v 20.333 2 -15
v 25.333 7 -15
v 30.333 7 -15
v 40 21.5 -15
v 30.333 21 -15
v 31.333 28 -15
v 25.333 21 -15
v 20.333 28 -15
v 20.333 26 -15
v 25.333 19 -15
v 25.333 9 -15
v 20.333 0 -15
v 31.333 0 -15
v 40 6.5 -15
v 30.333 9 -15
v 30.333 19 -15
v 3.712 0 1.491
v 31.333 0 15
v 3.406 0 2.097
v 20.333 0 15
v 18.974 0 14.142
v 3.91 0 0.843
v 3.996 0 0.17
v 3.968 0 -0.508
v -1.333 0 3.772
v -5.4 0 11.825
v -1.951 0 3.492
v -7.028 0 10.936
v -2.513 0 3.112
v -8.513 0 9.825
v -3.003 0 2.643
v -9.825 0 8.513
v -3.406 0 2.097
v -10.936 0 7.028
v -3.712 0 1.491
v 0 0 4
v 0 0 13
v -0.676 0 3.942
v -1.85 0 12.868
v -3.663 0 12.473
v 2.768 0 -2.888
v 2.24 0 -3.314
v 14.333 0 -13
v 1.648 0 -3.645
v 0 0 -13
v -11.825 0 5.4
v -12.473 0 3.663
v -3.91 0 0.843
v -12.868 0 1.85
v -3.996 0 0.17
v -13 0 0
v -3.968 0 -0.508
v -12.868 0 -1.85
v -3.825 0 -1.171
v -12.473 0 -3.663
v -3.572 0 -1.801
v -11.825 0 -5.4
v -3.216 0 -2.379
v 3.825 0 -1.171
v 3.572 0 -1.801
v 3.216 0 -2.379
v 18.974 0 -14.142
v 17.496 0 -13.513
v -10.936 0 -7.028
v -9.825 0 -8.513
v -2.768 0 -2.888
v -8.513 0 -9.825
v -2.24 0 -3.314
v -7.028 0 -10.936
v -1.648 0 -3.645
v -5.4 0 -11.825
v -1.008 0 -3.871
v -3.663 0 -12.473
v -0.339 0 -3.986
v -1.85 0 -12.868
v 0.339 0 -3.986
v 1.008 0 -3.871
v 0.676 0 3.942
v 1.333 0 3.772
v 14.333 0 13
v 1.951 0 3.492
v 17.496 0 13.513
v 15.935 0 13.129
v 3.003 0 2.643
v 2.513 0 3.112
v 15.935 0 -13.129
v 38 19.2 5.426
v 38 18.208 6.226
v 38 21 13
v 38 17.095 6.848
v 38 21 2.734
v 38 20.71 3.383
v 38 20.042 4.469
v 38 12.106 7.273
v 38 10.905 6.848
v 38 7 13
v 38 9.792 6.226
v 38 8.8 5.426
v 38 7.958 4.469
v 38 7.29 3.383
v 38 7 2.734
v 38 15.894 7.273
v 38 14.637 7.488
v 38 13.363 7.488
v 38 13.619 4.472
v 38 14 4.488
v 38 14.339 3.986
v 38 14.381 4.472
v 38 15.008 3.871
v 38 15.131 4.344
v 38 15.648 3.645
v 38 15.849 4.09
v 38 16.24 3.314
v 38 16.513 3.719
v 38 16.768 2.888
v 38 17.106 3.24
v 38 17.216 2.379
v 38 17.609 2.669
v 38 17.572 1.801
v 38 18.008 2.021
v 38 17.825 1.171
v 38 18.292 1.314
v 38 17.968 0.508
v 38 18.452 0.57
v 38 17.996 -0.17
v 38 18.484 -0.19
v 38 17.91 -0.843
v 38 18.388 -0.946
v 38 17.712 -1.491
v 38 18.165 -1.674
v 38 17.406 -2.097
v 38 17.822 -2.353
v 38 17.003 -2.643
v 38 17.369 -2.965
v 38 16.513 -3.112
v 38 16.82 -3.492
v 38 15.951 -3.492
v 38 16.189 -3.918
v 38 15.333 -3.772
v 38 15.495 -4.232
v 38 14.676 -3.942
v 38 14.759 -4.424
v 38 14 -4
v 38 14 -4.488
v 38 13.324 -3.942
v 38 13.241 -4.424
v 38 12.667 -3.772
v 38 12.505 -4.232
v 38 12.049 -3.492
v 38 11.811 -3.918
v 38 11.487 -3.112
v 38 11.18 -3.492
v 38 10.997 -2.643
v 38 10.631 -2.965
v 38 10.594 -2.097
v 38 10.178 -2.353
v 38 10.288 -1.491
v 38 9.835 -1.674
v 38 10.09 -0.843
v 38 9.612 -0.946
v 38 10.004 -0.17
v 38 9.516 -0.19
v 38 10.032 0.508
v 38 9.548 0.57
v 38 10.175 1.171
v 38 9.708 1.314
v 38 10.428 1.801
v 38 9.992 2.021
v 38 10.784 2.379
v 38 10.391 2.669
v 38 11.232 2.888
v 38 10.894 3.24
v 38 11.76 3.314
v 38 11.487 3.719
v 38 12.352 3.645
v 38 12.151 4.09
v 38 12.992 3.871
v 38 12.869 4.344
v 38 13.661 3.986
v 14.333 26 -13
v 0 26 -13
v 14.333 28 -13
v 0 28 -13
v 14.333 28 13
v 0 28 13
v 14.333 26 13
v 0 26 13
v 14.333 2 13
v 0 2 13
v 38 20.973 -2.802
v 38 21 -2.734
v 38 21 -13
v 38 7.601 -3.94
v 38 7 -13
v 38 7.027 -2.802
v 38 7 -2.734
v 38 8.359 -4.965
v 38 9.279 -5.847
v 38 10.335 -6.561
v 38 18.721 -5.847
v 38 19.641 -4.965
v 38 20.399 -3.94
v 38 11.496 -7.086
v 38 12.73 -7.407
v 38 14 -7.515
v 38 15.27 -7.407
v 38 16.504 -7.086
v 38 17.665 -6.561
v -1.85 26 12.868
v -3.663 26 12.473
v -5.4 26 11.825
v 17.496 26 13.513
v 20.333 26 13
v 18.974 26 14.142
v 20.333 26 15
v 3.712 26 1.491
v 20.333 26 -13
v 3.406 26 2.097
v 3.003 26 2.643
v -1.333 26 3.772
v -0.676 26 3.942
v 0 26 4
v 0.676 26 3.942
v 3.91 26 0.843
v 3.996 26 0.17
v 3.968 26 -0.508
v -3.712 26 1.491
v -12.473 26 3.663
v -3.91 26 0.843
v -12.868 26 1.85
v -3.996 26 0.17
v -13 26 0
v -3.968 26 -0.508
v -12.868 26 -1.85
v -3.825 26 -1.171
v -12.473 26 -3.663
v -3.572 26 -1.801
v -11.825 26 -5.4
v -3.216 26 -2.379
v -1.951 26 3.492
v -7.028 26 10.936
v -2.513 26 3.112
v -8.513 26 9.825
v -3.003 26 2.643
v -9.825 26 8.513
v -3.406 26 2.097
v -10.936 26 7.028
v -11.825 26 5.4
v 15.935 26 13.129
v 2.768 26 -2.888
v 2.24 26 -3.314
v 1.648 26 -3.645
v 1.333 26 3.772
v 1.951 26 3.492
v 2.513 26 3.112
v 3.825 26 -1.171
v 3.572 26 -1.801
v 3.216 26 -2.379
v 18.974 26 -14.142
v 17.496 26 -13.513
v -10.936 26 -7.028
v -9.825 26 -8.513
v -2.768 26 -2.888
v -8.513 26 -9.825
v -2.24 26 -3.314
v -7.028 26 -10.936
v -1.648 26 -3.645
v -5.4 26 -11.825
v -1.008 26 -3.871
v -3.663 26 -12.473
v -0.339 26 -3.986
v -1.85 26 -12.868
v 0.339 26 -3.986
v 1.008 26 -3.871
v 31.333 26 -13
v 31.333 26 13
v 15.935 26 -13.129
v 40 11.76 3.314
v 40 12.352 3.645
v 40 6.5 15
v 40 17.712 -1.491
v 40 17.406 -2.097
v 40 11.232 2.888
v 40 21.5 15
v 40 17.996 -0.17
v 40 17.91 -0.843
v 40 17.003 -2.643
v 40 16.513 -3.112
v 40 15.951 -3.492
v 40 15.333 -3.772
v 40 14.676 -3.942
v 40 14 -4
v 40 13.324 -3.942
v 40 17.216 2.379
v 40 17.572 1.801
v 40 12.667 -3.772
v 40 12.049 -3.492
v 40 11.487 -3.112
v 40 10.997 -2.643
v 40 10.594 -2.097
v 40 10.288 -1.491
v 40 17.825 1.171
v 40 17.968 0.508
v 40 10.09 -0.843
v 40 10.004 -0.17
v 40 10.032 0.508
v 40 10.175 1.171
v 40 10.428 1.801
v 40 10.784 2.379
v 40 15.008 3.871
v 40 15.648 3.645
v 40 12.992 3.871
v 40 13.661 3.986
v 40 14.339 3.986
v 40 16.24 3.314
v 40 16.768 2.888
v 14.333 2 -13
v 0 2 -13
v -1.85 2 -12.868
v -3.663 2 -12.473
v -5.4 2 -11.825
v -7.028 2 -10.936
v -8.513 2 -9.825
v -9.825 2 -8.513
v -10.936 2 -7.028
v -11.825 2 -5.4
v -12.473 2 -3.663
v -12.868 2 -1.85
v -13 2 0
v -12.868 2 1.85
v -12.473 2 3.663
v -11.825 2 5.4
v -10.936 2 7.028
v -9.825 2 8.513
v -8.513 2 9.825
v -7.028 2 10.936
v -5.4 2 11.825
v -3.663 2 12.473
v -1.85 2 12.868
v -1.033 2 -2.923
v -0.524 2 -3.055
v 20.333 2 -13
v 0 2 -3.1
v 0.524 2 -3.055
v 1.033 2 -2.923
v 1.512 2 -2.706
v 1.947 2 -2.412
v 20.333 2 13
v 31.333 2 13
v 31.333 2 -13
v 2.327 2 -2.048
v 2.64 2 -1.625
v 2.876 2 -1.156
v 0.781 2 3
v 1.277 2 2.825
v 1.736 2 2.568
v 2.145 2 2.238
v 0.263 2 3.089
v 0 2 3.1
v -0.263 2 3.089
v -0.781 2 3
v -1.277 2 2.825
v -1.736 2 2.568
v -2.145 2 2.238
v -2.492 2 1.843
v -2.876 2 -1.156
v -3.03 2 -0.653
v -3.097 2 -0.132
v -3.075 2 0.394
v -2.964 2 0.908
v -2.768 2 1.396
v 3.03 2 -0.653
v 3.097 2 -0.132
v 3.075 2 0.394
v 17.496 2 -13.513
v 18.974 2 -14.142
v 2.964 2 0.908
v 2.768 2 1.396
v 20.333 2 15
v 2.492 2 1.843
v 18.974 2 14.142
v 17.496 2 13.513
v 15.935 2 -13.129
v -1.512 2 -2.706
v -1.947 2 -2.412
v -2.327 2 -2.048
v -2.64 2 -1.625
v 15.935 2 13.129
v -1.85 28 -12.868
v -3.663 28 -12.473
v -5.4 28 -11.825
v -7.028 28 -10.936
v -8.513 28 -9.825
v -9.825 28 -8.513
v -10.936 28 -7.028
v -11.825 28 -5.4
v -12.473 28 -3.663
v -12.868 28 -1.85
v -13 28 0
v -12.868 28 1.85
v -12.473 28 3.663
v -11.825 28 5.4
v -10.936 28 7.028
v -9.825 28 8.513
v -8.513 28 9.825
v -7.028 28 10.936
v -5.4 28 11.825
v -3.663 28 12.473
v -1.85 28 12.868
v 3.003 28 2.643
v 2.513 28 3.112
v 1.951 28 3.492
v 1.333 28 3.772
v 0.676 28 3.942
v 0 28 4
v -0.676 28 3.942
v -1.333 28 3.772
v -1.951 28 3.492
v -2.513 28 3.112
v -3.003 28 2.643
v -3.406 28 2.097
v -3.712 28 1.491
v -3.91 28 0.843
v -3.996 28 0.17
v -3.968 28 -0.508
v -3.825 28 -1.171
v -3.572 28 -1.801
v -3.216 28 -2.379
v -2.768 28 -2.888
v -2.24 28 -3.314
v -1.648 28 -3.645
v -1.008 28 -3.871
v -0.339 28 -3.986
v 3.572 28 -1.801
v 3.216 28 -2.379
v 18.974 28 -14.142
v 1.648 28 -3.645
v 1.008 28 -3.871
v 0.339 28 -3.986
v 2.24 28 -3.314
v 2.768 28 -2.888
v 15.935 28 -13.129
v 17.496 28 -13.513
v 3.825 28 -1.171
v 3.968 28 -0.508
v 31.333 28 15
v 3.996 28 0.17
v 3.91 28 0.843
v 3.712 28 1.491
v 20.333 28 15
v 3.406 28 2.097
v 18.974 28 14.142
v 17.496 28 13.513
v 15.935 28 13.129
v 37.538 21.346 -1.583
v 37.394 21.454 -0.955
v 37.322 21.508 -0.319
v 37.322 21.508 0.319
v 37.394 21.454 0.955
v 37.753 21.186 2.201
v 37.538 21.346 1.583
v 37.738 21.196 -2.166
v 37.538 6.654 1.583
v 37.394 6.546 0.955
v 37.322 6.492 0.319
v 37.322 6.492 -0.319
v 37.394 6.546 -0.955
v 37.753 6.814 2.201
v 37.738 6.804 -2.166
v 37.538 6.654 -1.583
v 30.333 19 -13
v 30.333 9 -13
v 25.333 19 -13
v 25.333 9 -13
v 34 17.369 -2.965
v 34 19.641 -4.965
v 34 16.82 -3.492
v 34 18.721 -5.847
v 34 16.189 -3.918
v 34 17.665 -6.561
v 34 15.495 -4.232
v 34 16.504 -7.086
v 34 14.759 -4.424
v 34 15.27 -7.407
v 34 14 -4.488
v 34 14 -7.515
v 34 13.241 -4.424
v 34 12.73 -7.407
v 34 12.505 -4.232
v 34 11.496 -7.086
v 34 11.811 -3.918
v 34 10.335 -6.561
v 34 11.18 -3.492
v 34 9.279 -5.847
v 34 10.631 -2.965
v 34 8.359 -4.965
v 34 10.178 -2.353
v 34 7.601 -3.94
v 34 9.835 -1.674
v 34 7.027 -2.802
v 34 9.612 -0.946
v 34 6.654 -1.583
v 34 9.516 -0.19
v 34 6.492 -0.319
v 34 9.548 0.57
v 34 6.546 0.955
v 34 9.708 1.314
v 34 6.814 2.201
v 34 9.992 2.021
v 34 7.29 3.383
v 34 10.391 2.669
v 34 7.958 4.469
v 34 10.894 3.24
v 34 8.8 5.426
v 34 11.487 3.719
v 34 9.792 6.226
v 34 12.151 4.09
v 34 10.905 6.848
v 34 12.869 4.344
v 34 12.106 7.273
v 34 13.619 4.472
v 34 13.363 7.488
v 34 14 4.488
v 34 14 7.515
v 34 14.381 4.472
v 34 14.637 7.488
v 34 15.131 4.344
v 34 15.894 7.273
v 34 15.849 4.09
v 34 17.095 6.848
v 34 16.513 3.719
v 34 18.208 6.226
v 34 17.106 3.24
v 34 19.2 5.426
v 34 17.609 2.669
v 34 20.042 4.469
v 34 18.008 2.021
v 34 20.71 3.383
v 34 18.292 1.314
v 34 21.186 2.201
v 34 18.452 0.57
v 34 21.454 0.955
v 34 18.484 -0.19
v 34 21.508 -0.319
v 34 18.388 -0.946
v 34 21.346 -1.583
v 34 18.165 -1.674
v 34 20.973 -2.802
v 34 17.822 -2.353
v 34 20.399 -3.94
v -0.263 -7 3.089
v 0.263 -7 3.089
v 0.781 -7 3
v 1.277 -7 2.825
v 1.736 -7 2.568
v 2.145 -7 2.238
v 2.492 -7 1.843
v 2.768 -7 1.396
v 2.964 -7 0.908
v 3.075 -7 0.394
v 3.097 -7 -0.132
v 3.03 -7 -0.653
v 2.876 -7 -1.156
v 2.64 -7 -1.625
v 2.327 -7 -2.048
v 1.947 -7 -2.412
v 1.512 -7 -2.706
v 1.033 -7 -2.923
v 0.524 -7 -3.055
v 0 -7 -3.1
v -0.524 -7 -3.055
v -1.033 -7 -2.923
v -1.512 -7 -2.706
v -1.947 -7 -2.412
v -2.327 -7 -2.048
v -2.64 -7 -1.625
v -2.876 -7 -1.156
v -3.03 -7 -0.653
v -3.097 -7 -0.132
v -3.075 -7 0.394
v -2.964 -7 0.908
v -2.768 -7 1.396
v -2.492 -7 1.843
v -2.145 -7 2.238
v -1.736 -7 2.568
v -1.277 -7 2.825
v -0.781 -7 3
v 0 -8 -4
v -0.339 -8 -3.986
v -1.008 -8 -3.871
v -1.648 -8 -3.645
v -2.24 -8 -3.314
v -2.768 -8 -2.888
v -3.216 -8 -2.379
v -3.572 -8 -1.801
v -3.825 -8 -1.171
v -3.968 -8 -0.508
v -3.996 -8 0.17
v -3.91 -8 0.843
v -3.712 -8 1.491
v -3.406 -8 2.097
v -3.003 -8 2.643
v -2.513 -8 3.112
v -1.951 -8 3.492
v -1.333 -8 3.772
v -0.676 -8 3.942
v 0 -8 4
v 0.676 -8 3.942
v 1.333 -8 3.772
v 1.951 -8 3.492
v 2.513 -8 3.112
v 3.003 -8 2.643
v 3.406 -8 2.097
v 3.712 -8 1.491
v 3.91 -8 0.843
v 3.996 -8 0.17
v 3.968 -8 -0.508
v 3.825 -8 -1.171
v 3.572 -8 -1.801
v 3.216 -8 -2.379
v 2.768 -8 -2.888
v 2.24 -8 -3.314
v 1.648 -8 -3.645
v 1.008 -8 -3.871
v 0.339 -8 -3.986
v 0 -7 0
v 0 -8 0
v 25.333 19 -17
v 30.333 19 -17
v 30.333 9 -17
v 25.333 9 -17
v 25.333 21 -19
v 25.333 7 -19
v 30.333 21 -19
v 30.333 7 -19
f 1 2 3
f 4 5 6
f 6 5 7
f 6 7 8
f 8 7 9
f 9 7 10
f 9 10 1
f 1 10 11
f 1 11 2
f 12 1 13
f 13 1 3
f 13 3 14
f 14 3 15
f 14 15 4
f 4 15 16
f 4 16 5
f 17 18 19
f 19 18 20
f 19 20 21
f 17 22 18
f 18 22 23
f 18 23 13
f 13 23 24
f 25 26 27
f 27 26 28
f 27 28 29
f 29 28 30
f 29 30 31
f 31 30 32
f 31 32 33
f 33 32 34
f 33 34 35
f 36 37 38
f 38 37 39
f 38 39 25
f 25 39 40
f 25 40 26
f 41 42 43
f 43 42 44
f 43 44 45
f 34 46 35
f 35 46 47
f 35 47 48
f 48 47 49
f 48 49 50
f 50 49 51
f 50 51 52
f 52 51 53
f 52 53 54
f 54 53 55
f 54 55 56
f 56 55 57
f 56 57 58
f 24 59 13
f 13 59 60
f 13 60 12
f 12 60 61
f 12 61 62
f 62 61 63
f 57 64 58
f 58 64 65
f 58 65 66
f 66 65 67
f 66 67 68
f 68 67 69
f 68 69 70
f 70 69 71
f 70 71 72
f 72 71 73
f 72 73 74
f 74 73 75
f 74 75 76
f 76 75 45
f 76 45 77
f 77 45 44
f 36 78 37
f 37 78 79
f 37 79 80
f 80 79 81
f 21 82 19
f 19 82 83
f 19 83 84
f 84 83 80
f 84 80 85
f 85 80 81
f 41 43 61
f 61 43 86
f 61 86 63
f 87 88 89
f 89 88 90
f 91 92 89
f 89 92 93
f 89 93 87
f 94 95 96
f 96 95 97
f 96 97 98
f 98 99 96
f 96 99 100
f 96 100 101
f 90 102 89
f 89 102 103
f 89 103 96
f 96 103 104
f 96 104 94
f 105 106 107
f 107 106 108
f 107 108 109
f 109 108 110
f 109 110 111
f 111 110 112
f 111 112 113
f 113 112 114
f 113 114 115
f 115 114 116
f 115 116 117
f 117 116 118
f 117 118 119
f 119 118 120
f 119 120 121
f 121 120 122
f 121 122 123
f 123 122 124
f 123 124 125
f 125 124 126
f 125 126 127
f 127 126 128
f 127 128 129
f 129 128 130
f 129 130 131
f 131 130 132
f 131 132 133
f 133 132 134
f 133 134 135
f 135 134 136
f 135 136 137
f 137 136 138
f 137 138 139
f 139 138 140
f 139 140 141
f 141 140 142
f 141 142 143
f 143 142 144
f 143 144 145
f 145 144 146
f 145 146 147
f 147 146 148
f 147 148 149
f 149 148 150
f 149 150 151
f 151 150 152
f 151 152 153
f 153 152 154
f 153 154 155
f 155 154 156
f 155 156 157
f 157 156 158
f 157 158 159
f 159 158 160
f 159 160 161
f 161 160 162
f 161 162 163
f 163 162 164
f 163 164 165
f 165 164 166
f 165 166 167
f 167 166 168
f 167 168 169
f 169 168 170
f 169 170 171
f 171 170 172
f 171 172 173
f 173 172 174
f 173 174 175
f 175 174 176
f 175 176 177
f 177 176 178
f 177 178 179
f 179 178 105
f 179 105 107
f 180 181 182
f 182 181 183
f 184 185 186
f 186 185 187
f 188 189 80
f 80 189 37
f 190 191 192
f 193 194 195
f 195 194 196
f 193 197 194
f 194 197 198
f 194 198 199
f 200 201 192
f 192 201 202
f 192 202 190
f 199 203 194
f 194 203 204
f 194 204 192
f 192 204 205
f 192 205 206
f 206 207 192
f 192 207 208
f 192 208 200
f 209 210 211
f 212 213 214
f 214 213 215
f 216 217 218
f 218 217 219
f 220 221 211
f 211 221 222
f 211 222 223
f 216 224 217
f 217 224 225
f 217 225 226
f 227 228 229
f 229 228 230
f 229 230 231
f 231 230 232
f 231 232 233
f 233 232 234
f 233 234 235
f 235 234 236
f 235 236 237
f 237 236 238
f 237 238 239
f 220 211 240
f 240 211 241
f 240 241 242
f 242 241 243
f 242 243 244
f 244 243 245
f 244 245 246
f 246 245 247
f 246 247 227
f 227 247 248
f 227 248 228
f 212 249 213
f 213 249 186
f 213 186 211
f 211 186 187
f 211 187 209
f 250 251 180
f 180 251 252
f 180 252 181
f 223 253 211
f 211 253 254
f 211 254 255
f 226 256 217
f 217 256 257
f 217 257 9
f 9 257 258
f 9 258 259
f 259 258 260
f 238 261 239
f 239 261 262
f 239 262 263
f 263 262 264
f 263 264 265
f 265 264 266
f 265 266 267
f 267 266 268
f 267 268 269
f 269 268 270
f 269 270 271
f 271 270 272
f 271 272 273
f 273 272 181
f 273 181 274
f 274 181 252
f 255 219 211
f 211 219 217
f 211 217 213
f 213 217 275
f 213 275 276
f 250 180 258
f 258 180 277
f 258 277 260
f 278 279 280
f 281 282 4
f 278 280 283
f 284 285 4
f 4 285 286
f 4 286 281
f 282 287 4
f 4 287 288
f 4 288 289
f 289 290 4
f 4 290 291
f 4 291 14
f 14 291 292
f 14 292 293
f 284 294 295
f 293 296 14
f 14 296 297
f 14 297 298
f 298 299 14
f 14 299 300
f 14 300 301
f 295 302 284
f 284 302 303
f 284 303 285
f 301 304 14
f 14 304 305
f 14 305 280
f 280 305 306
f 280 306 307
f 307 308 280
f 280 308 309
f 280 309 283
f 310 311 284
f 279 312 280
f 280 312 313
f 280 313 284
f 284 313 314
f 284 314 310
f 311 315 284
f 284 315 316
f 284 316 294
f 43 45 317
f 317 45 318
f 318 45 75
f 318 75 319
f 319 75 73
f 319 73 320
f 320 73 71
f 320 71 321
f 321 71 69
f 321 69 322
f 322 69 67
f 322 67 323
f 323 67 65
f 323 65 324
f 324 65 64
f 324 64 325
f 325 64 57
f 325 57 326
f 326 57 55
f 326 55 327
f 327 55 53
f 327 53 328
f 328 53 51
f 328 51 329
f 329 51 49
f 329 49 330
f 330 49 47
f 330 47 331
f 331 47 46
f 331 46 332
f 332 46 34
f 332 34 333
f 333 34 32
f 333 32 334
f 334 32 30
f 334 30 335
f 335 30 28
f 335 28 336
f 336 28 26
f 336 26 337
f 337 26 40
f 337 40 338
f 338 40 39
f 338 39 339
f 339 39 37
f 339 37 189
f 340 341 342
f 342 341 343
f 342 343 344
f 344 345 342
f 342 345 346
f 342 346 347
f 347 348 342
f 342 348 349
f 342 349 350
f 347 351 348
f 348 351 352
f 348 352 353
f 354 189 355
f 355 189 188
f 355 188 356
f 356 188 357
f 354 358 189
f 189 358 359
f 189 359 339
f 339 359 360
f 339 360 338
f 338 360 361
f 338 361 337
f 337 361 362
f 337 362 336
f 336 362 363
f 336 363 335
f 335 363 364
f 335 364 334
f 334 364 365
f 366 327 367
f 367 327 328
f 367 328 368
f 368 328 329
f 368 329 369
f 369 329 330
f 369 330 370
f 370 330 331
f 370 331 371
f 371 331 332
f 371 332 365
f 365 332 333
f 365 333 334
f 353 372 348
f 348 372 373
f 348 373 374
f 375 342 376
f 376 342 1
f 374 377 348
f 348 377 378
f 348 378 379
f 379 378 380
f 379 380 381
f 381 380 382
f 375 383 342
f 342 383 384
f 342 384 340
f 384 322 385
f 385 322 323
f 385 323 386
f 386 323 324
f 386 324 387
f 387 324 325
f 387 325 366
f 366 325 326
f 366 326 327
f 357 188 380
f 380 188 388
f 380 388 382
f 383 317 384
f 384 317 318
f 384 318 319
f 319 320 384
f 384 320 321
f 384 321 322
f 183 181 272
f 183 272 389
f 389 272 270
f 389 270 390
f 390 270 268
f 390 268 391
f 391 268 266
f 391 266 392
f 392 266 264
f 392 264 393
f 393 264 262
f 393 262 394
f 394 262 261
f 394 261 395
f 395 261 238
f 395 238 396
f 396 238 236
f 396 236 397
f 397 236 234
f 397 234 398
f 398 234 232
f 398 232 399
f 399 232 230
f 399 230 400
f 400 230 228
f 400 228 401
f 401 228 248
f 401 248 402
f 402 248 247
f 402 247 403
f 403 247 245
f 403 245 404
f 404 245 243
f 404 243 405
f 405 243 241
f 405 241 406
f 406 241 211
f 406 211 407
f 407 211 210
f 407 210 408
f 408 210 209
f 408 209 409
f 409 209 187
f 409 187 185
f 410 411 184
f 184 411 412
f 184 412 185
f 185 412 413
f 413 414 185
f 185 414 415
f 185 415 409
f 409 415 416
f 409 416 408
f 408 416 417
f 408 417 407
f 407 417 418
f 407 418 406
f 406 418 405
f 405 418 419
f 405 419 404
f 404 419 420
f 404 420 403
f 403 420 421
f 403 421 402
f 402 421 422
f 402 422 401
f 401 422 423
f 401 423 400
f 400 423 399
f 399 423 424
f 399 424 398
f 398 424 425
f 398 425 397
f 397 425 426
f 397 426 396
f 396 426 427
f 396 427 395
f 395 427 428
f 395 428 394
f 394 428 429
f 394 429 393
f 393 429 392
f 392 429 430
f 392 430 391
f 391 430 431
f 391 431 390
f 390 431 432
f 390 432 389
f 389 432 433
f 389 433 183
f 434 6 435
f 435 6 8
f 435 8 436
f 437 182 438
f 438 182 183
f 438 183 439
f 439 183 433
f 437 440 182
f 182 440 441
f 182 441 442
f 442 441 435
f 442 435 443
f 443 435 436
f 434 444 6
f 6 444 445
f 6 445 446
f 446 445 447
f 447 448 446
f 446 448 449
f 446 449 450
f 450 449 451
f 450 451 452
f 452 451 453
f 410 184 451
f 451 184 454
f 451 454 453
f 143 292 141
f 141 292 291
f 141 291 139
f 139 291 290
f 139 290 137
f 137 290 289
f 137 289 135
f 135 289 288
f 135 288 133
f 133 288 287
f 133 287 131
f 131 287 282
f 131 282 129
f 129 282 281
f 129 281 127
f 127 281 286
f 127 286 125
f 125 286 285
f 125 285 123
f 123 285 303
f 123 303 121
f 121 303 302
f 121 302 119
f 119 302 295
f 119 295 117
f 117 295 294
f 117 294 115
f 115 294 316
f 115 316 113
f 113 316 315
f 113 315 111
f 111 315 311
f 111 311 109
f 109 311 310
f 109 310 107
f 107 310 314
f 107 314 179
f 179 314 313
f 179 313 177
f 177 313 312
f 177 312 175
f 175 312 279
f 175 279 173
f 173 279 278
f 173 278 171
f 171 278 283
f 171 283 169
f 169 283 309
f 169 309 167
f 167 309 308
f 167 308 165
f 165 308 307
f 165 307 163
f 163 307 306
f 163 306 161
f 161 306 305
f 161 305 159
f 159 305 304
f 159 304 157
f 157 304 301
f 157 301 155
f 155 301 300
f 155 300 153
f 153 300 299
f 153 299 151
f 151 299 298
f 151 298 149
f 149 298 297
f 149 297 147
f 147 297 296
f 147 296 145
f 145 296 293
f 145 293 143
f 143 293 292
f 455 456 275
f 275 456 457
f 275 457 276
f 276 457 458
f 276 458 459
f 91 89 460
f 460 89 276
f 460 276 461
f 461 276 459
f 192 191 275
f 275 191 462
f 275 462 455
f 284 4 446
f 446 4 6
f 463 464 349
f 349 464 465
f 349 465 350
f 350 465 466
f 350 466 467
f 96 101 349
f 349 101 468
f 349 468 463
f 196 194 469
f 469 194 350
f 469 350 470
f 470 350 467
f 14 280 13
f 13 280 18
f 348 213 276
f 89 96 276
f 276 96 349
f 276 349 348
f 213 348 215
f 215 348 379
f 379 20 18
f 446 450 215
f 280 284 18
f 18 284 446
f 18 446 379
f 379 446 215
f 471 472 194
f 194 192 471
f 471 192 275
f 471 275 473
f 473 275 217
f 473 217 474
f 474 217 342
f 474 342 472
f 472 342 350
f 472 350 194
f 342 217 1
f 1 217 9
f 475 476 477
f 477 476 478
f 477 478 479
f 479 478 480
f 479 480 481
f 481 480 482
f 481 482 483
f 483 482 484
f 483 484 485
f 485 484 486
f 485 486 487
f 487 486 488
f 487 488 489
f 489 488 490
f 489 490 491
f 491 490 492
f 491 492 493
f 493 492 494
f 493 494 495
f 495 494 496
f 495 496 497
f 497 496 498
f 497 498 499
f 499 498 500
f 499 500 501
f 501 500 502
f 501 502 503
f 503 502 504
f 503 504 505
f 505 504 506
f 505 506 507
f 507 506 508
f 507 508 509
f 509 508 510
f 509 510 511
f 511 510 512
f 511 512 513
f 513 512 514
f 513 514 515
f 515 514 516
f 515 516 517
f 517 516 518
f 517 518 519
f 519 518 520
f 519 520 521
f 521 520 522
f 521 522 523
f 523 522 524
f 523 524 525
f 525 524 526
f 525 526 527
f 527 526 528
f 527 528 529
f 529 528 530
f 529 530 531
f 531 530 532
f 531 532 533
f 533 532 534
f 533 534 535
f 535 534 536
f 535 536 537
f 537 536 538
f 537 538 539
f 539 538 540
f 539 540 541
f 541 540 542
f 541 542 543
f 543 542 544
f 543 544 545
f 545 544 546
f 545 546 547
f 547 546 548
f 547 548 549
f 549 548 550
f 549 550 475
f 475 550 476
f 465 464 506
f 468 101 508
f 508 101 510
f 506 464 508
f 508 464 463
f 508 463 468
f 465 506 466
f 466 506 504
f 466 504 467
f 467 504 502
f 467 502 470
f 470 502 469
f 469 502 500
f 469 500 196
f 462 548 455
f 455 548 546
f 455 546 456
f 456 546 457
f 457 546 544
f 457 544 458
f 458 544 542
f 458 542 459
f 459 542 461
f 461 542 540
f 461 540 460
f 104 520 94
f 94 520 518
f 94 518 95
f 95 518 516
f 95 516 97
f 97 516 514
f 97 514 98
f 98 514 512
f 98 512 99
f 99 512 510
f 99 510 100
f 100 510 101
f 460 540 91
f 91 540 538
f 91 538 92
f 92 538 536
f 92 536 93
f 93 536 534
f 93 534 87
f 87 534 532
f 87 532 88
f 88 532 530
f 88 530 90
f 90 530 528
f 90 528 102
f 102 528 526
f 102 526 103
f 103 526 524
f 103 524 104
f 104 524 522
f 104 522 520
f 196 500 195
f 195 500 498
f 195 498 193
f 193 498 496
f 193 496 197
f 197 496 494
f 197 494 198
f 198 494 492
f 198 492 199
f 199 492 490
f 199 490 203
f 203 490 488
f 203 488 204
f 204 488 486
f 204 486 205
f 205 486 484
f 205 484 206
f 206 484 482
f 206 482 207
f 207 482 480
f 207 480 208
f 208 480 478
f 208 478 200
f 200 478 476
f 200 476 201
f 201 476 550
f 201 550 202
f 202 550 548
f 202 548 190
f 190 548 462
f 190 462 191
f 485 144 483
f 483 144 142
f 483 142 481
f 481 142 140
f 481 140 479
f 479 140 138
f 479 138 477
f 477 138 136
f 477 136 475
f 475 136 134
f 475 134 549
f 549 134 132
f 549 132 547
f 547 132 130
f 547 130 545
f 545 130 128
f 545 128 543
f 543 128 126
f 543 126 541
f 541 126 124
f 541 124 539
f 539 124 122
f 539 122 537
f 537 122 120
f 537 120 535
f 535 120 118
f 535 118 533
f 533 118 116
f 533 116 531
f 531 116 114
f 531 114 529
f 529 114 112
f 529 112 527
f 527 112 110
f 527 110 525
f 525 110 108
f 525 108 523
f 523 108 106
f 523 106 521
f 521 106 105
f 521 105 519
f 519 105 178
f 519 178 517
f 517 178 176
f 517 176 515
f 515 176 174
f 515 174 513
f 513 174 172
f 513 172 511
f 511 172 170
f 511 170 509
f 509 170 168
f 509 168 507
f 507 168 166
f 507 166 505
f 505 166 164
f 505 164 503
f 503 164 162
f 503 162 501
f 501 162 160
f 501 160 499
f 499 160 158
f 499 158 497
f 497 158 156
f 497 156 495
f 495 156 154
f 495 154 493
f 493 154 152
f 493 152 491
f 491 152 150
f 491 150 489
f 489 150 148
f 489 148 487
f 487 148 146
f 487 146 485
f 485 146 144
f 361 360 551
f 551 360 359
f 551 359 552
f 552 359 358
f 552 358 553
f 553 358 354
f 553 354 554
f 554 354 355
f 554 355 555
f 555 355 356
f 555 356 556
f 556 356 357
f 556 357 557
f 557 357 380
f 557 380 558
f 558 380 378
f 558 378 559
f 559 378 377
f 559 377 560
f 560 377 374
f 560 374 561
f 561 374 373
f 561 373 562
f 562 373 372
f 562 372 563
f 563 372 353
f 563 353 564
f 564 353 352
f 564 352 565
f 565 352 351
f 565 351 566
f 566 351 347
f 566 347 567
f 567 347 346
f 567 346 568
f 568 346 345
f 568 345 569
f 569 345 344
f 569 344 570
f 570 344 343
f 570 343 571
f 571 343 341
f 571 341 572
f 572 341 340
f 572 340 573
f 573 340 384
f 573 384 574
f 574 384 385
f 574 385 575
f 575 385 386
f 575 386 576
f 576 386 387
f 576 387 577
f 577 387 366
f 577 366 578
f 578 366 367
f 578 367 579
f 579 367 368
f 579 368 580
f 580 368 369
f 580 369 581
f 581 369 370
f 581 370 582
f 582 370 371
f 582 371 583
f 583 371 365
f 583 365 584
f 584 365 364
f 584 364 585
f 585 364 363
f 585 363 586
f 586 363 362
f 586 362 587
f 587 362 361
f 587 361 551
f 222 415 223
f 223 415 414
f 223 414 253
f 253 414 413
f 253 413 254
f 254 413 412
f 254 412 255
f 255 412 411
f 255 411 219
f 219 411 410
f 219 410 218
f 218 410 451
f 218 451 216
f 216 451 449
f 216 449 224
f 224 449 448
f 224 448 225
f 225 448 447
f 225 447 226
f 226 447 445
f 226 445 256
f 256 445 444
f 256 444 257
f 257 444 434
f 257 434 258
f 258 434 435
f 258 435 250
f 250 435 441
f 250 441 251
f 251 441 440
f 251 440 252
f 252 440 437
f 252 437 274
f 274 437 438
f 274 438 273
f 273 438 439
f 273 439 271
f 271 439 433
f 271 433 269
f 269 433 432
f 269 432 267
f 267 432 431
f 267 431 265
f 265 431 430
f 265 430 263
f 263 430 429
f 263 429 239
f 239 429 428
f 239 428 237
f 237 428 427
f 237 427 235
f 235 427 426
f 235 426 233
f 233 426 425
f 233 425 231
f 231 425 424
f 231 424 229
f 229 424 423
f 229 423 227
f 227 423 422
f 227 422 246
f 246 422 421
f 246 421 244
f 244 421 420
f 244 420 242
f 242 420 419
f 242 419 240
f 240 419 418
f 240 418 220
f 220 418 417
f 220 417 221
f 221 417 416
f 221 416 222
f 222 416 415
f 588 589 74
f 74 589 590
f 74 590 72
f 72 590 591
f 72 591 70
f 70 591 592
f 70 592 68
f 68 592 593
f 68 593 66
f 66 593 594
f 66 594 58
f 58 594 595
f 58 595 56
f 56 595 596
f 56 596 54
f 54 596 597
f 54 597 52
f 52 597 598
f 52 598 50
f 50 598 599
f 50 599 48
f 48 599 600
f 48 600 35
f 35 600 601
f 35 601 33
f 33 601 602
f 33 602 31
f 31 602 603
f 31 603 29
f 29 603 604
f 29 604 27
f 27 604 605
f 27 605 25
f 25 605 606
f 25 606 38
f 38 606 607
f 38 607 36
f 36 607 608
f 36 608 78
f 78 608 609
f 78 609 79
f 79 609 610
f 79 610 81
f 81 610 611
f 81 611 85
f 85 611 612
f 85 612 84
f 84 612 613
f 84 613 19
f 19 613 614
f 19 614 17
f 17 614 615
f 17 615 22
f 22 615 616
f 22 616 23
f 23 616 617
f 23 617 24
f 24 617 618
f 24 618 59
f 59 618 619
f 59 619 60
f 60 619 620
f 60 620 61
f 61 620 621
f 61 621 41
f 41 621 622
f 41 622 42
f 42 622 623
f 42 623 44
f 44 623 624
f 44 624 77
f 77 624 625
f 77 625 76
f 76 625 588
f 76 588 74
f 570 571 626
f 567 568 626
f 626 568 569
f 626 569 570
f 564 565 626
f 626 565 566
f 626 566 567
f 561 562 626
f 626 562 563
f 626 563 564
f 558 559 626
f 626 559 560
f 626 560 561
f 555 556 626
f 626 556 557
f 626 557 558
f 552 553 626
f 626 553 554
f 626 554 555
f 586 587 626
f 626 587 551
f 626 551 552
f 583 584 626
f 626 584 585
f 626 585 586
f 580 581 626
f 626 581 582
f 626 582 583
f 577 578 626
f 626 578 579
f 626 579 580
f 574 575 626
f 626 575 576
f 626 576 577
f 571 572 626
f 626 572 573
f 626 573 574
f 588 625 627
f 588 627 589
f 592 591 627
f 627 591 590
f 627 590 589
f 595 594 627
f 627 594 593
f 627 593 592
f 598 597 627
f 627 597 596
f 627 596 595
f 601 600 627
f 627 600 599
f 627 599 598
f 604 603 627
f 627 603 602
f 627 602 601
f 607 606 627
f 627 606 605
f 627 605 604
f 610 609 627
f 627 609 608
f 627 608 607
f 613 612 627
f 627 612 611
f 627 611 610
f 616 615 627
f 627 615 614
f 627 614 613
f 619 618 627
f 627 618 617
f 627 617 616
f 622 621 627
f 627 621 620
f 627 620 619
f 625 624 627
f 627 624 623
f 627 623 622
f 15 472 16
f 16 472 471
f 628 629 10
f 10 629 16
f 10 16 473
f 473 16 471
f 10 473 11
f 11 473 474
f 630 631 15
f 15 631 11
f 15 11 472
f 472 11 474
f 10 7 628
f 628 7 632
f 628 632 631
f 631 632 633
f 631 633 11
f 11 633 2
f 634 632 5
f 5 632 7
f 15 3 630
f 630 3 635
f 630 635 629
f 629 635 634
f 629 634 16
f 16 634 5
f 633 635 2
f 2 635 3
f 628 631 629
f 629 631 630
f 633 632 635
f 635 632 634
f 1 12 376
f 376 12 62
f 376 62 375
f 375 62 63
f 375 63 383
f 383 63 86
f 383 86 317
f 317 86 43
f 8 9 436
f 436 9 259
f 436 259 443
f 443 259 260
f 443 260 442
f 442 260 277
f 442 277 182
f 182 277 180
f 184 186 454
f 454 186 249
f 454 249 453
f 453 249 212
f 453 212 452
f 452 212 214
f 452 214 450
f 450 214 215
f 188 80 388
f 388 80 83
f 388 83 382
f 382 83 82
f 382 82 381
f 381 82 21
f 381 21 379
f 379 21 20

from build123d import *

# Parameters (mm, degrees)
BOSS_EXTRUDE1_DEPTH  = 2
SKETCH2_W            = 2
SKETCH2_H            = 26
BOSS_EXTRUDE2_DEPTH  = 24
BOSS_EXTRUDE3_DEPTH  = 2
SKETCH4_R            = 4
CUT_EXTRUDE1_DEPTH   = 2
BOSS_EXTRUDE4_DEPTH  = 26
CUT_EXTRUDE2_DEPTH   = 26
BOSS_EXTRUDE5_DEPTH  = 2
SKETCH8_R            = 7.515013345
SKETCH8_R_2          = 4.48835621
BOSS_EXTRUDE6_DEPTH  = 4
SKETCH9_R            = 3.1
CUT_EXTRUDE3_DEPTH   = 10
SKETCH10_R           = 4
CUT_EXTRUDE4_DEPTH   = 10
SKETCH11_R           = 4
SKETCH11_R_2         = 3.1
BOSS_EXTRUDE7_DEPTH  = 7
SKETCH12_R           = 4
BOSS_EXTRUDE8_DEPTH  = 1
SKETCH13_W           = 5
SKETCH13_H           = 10
CUT_EXTRUDE5_DEPTH   = 10
SKETCH14_W           = 5
SKETCH14_H           = 10
CUT_EXTRUDE6_DEPTH   = 4
SKETCH15_W           = 5
SKETCH15_H           = 10
BOSS_EXTRUDE9_DEPTH  = 2
SKETCH16_W           = 5
SKETCH16_H           = 2
BOSS_EXTRUDE10_DEPTH = 2
SKETCH17_W           = 5
SKETCH17_H           = 14
BOSS_EXTRUDE11_DEPTH = 2
FILLET1_R            = 10


with BuildPart() as part:
    # Sketch1 → Boss-Extrude1 (new body)
    with BuildSketch(Plane(origin=(0, 0, 0), x_dir=(1, 0, 0), z_dir=(0, 1, 0))):
        with BuildLine():
            Line((40, 13), (0, 13))
            ThreePointArc((0, 13), (-13, 0), (0, -13))
            Line((0, -13), (40, -13))
            Line((40, -13), (40, 13))
        make_face()
    extrude(amount=BOSS_EXTRUDE1_DEPTH)

    # Sketch2 → Boss-Extrude2 (add)
    with BuildSketch(Plane(origin=(0, 2, 0), x_dir=(1, 0, 0), z_dir=(0, 1, 0))):
        with Locations((39, 0)):
            Rectangle(SKETCH2_W, SKETCH2_H)
    extrude(amount=BOSS_EXTRUDE2_DEPTH)

    # Sketch3 → Boss-Extrude3 (add)
    with BuildSketch(Plane(origin=(0, 26, 0), x_dir=(1, 0, 0), z_dir=(0, 1, 0))):
        with BuildLine():
            Line((40, -13), (0, -13))
            ThreePointArc((0, -13), (-13, 0), (0, 13))
            Line((0, 13), (40, 13))
            Line((40, 13), (40, -13))
        make_face()
    extrude(amount=BOSS_EXTRUDE3_DEPTH)

    # Sketch4 → Cut-Extrude1 (cut)
    with BuildSketch(Plane(origin=(40, 0, 0), x_dir=(0, 0, -1), z_dir=(1, 0, 0))):
        with Locations((0, 14)):
            Circle(SKETCH4_R)
    extrude(amount=-CUT_EXTRUDE1_DEPTH, mode=Mode.SUBTRACT)

    # Sketch5 → Boss-Extrude4 (add)
    with BuildSketch(Plane.XY.offset(13)):
        Polygon((38, 5), (34, 2), (31.333333333, 0), (31.333333333, 2), (40, 8.5), (40, 6.5), align=None)
        Polygon((40, 21.5), (38, 23), (34, 26), (31.333333333, 28), (31.333333333, 26), (40, 19.5), align=None)
    extrude(amount=-BOSS_EXTRUDE4_DEPTH)

    # Sketch6 → Cut-Extrude2 (cut)
    with BuildSketch(Plane.XY.offset(13)):
        Polygon((38, 5), (31.333333333, 0), (40, 0), (40, 6.5), align=None)
        Polygon((40, 28), (40, 21.5), (38, 23), (31.333333333, 28), align=None)
    extrude(amount=-CUT_EXTRUDE2_DEPTH, mode=Mode.SUBTRACT)

    # Sketch7 → Boss-Extrude5 (add)
    with BuildSketch(Plane.XY.offset(13)):
        Polygon((40, 21.5), (31.333333333, 28), (20.333333333, 28), (20.333333333, 0), (31.333333333, 0), (40, 6.5), align=None)
    boss_extrude5 = extrude(amount=BOSS_EXTRUDE5_DEPTH)

    # Mirror1: Boss-Extrude5 across plane
    add(boss_extrude5.mirror(Plane.XY))

    # Sketch8 → Boss-Extrude6 (add)
    with BuildSketch(Plane.ZY.offset(-38)):
        with Locations(Location((0, 14, 0), (0, 0, 111.335065793))):
            Circle(SKETCH8_R)
        with Locations((0, 14)):
            Circle(SKETCH8_R_2, mode=Mode.SUBTRACT)
    extrude(amount=BOSS_EXTRUDE6_DEPTH)

    # Sketch9 → Cut-Extrude3 (cut)
    with BuildSketch(Plane.XZ):
        with Locations(Location((0, 0, 0), (0, 0, 270))):
            Circle(SKETCH9_R)
    extrude(amount=-CUT_EXTRUDE3_DEPTH, mode=Mode.SUBTRACT)

    # Sketch10 → Cut-Extrude4 (cut)
    with BuildSketch(Plane(origin=(0, 28, 0), x_dir=(1, 0, 0), z_dir=(0, 1, 0))):
        with Locations(Location((0, 0, 0), (0, 0, 270))):
            Circle(SKETCH10_R)
    extrude(amount=-CUT_EXTRUDE4_DEPTH, mode=Mode.SUBTRACT)

    # Sketch11 → Boss-Extrude7 (add)
    with BuildSketch(Plane.XZ):
        with Locations(Location((0, 0, 0), (0, 0, 90))):
            Circle(SKETCH11_R)
        with Locations(Location((0, 0, 0), (0, 0, 270))):
            Circle(SKETCH11_R_2, mode=Mode.SUBTRACT)
    extrude(amount=BOSS_EXTRUDE7_DEPTH)

    # Sketch12 → Boss-Extrude8 (add)
    with BuildSketch(Plane.XZ.offset(7)):
        with Locations(Location((0, 0, 0), (0, 0, 90))):
            Circle(SKETCH12_R)
    extrude(amount=BOSS_EXTRUDE8_DEPTH)

    # Sketch13 → Cut-Extrude5 (cut)
    with BuildSketch(Plane.XY.offset(15)):
        with Locations((27.833333333, 14)):
            Rectangle(SKETCH13_W, SKETCH13_H)
    extrude(amount=-CUT_EXTRUDE5_DEPTH, mode=Mode.SUBTRACT)

    # Sketch14 → Cut-Extrude6 (cut)
    with BuildSketch(Plane(origin=(0, 0, -15), x_dir=(-1, 0, 0), z_dir=(0, 0, -1))):
        with Locations((-27.833333333, 14)):
            Rectangle(SKETCH14_W, SKETCH14_H)
    extrude(amount=-CUT_EXTRUDE6_DEPTH, mode=Mode.SUBTRACT)

    # Sketch15 → Boss-Extrude9 (add)
    with BuildSketch(Plane.XY.offset(15)):
        with Locations((27.833333333, 14)):
            Rectangle(SKETCH15_W, SKETCH15_H)
    extrude(amount=-BOSS_EXTRUDE9_DEPTH)

    # Sketch16 → Boss-Extrude10 (add)
    with BuildSketch(Plane(origin=(0, 0, -15), x_dir=(-1, 0, 0), z_dir=(0, 0, -1))):
        with Locations((-27.833333333, 20)):
            Rectangle(SKETCH16_W, SKETCH16_H)
        with Locations((-27.833333333, 8)):
            Rectangle(SKETCH16_W, SKETCH16_H)
    extrude(amount=BOSS_EXTRUDE10_DEPTH)

    # Sketch17 → Boss-Extrude11 (add)
    with BuildSketch(Plane(origin=(0, 0, -17), x_dir=(-1, 0, 0), z_dir=(0, 0, -1))):
        with Locations((-27.833333333, 14)):
            Rectangle(SKETCH17_W, SKETCH17_H)
    extrude(amount=BOSS_EXTRUDE11_DEPTH)

    # Fillet1
    # the kernel refuses this fillet: 10 mm, written as the material it adds along each edge
    with BuildSketch(Plane(origin=(20.333333333, 28, 13), x_dir=(0, 0, 1), z_dir=(0, -1, 0))) as fillet1_piece_1:
        with BuildLine():
            CenterArc((10, 6), FILLET1_R, 180, 36.869897646)
            Line((0, 6), (0, 0))
            Line((0, 0), (2, 0))
        make_face()
    extrude(amount=2)
    with BuildSketch(Plane(origin=(20.333333333, 2, 13), x_dir=(-1, 0, 0), z_dir=(0, -1, 0))) as fillet1_piece_2:
        with BuildLine():
            CenterArc((6, -10), FILLET1_R, 90, 36.869897646)
            Line((0, -2), (0, 0))
            Line((0, 0), (6, 0))
        make_face()
    extrude(amount=2)
    with BuildSketch(Plane(origin=(20.333333333, 2, -13), x_dir=(-1, 0, 0), z_dir=(0, -1, 0))) as fillet1_piece_3:
        with BuildLine():
            CenterArc((6, 10), FILLET1_R, 233.130102354, 36.869897646)
            Line((0, 2), (0, 0))
            Line((0, 0), (6, 0))
        make_face()
    extrude(amount=2)
    with BuildSketch(Plane(origin=(20.333333333, 28, -13), x_dir=(0, 0, -1), z_dir=(0, -1, 0))) as fillet1_piece_4:
        with BuildLine():
            CenterArc((10, -6), FILLET1_R, 143.130102354, 36.869897646)
            Line((0, -6), (0, 0))
            Line((0, 0), (2, 0))
        make_face()
    extrude(amount=2)


solid = part.part
